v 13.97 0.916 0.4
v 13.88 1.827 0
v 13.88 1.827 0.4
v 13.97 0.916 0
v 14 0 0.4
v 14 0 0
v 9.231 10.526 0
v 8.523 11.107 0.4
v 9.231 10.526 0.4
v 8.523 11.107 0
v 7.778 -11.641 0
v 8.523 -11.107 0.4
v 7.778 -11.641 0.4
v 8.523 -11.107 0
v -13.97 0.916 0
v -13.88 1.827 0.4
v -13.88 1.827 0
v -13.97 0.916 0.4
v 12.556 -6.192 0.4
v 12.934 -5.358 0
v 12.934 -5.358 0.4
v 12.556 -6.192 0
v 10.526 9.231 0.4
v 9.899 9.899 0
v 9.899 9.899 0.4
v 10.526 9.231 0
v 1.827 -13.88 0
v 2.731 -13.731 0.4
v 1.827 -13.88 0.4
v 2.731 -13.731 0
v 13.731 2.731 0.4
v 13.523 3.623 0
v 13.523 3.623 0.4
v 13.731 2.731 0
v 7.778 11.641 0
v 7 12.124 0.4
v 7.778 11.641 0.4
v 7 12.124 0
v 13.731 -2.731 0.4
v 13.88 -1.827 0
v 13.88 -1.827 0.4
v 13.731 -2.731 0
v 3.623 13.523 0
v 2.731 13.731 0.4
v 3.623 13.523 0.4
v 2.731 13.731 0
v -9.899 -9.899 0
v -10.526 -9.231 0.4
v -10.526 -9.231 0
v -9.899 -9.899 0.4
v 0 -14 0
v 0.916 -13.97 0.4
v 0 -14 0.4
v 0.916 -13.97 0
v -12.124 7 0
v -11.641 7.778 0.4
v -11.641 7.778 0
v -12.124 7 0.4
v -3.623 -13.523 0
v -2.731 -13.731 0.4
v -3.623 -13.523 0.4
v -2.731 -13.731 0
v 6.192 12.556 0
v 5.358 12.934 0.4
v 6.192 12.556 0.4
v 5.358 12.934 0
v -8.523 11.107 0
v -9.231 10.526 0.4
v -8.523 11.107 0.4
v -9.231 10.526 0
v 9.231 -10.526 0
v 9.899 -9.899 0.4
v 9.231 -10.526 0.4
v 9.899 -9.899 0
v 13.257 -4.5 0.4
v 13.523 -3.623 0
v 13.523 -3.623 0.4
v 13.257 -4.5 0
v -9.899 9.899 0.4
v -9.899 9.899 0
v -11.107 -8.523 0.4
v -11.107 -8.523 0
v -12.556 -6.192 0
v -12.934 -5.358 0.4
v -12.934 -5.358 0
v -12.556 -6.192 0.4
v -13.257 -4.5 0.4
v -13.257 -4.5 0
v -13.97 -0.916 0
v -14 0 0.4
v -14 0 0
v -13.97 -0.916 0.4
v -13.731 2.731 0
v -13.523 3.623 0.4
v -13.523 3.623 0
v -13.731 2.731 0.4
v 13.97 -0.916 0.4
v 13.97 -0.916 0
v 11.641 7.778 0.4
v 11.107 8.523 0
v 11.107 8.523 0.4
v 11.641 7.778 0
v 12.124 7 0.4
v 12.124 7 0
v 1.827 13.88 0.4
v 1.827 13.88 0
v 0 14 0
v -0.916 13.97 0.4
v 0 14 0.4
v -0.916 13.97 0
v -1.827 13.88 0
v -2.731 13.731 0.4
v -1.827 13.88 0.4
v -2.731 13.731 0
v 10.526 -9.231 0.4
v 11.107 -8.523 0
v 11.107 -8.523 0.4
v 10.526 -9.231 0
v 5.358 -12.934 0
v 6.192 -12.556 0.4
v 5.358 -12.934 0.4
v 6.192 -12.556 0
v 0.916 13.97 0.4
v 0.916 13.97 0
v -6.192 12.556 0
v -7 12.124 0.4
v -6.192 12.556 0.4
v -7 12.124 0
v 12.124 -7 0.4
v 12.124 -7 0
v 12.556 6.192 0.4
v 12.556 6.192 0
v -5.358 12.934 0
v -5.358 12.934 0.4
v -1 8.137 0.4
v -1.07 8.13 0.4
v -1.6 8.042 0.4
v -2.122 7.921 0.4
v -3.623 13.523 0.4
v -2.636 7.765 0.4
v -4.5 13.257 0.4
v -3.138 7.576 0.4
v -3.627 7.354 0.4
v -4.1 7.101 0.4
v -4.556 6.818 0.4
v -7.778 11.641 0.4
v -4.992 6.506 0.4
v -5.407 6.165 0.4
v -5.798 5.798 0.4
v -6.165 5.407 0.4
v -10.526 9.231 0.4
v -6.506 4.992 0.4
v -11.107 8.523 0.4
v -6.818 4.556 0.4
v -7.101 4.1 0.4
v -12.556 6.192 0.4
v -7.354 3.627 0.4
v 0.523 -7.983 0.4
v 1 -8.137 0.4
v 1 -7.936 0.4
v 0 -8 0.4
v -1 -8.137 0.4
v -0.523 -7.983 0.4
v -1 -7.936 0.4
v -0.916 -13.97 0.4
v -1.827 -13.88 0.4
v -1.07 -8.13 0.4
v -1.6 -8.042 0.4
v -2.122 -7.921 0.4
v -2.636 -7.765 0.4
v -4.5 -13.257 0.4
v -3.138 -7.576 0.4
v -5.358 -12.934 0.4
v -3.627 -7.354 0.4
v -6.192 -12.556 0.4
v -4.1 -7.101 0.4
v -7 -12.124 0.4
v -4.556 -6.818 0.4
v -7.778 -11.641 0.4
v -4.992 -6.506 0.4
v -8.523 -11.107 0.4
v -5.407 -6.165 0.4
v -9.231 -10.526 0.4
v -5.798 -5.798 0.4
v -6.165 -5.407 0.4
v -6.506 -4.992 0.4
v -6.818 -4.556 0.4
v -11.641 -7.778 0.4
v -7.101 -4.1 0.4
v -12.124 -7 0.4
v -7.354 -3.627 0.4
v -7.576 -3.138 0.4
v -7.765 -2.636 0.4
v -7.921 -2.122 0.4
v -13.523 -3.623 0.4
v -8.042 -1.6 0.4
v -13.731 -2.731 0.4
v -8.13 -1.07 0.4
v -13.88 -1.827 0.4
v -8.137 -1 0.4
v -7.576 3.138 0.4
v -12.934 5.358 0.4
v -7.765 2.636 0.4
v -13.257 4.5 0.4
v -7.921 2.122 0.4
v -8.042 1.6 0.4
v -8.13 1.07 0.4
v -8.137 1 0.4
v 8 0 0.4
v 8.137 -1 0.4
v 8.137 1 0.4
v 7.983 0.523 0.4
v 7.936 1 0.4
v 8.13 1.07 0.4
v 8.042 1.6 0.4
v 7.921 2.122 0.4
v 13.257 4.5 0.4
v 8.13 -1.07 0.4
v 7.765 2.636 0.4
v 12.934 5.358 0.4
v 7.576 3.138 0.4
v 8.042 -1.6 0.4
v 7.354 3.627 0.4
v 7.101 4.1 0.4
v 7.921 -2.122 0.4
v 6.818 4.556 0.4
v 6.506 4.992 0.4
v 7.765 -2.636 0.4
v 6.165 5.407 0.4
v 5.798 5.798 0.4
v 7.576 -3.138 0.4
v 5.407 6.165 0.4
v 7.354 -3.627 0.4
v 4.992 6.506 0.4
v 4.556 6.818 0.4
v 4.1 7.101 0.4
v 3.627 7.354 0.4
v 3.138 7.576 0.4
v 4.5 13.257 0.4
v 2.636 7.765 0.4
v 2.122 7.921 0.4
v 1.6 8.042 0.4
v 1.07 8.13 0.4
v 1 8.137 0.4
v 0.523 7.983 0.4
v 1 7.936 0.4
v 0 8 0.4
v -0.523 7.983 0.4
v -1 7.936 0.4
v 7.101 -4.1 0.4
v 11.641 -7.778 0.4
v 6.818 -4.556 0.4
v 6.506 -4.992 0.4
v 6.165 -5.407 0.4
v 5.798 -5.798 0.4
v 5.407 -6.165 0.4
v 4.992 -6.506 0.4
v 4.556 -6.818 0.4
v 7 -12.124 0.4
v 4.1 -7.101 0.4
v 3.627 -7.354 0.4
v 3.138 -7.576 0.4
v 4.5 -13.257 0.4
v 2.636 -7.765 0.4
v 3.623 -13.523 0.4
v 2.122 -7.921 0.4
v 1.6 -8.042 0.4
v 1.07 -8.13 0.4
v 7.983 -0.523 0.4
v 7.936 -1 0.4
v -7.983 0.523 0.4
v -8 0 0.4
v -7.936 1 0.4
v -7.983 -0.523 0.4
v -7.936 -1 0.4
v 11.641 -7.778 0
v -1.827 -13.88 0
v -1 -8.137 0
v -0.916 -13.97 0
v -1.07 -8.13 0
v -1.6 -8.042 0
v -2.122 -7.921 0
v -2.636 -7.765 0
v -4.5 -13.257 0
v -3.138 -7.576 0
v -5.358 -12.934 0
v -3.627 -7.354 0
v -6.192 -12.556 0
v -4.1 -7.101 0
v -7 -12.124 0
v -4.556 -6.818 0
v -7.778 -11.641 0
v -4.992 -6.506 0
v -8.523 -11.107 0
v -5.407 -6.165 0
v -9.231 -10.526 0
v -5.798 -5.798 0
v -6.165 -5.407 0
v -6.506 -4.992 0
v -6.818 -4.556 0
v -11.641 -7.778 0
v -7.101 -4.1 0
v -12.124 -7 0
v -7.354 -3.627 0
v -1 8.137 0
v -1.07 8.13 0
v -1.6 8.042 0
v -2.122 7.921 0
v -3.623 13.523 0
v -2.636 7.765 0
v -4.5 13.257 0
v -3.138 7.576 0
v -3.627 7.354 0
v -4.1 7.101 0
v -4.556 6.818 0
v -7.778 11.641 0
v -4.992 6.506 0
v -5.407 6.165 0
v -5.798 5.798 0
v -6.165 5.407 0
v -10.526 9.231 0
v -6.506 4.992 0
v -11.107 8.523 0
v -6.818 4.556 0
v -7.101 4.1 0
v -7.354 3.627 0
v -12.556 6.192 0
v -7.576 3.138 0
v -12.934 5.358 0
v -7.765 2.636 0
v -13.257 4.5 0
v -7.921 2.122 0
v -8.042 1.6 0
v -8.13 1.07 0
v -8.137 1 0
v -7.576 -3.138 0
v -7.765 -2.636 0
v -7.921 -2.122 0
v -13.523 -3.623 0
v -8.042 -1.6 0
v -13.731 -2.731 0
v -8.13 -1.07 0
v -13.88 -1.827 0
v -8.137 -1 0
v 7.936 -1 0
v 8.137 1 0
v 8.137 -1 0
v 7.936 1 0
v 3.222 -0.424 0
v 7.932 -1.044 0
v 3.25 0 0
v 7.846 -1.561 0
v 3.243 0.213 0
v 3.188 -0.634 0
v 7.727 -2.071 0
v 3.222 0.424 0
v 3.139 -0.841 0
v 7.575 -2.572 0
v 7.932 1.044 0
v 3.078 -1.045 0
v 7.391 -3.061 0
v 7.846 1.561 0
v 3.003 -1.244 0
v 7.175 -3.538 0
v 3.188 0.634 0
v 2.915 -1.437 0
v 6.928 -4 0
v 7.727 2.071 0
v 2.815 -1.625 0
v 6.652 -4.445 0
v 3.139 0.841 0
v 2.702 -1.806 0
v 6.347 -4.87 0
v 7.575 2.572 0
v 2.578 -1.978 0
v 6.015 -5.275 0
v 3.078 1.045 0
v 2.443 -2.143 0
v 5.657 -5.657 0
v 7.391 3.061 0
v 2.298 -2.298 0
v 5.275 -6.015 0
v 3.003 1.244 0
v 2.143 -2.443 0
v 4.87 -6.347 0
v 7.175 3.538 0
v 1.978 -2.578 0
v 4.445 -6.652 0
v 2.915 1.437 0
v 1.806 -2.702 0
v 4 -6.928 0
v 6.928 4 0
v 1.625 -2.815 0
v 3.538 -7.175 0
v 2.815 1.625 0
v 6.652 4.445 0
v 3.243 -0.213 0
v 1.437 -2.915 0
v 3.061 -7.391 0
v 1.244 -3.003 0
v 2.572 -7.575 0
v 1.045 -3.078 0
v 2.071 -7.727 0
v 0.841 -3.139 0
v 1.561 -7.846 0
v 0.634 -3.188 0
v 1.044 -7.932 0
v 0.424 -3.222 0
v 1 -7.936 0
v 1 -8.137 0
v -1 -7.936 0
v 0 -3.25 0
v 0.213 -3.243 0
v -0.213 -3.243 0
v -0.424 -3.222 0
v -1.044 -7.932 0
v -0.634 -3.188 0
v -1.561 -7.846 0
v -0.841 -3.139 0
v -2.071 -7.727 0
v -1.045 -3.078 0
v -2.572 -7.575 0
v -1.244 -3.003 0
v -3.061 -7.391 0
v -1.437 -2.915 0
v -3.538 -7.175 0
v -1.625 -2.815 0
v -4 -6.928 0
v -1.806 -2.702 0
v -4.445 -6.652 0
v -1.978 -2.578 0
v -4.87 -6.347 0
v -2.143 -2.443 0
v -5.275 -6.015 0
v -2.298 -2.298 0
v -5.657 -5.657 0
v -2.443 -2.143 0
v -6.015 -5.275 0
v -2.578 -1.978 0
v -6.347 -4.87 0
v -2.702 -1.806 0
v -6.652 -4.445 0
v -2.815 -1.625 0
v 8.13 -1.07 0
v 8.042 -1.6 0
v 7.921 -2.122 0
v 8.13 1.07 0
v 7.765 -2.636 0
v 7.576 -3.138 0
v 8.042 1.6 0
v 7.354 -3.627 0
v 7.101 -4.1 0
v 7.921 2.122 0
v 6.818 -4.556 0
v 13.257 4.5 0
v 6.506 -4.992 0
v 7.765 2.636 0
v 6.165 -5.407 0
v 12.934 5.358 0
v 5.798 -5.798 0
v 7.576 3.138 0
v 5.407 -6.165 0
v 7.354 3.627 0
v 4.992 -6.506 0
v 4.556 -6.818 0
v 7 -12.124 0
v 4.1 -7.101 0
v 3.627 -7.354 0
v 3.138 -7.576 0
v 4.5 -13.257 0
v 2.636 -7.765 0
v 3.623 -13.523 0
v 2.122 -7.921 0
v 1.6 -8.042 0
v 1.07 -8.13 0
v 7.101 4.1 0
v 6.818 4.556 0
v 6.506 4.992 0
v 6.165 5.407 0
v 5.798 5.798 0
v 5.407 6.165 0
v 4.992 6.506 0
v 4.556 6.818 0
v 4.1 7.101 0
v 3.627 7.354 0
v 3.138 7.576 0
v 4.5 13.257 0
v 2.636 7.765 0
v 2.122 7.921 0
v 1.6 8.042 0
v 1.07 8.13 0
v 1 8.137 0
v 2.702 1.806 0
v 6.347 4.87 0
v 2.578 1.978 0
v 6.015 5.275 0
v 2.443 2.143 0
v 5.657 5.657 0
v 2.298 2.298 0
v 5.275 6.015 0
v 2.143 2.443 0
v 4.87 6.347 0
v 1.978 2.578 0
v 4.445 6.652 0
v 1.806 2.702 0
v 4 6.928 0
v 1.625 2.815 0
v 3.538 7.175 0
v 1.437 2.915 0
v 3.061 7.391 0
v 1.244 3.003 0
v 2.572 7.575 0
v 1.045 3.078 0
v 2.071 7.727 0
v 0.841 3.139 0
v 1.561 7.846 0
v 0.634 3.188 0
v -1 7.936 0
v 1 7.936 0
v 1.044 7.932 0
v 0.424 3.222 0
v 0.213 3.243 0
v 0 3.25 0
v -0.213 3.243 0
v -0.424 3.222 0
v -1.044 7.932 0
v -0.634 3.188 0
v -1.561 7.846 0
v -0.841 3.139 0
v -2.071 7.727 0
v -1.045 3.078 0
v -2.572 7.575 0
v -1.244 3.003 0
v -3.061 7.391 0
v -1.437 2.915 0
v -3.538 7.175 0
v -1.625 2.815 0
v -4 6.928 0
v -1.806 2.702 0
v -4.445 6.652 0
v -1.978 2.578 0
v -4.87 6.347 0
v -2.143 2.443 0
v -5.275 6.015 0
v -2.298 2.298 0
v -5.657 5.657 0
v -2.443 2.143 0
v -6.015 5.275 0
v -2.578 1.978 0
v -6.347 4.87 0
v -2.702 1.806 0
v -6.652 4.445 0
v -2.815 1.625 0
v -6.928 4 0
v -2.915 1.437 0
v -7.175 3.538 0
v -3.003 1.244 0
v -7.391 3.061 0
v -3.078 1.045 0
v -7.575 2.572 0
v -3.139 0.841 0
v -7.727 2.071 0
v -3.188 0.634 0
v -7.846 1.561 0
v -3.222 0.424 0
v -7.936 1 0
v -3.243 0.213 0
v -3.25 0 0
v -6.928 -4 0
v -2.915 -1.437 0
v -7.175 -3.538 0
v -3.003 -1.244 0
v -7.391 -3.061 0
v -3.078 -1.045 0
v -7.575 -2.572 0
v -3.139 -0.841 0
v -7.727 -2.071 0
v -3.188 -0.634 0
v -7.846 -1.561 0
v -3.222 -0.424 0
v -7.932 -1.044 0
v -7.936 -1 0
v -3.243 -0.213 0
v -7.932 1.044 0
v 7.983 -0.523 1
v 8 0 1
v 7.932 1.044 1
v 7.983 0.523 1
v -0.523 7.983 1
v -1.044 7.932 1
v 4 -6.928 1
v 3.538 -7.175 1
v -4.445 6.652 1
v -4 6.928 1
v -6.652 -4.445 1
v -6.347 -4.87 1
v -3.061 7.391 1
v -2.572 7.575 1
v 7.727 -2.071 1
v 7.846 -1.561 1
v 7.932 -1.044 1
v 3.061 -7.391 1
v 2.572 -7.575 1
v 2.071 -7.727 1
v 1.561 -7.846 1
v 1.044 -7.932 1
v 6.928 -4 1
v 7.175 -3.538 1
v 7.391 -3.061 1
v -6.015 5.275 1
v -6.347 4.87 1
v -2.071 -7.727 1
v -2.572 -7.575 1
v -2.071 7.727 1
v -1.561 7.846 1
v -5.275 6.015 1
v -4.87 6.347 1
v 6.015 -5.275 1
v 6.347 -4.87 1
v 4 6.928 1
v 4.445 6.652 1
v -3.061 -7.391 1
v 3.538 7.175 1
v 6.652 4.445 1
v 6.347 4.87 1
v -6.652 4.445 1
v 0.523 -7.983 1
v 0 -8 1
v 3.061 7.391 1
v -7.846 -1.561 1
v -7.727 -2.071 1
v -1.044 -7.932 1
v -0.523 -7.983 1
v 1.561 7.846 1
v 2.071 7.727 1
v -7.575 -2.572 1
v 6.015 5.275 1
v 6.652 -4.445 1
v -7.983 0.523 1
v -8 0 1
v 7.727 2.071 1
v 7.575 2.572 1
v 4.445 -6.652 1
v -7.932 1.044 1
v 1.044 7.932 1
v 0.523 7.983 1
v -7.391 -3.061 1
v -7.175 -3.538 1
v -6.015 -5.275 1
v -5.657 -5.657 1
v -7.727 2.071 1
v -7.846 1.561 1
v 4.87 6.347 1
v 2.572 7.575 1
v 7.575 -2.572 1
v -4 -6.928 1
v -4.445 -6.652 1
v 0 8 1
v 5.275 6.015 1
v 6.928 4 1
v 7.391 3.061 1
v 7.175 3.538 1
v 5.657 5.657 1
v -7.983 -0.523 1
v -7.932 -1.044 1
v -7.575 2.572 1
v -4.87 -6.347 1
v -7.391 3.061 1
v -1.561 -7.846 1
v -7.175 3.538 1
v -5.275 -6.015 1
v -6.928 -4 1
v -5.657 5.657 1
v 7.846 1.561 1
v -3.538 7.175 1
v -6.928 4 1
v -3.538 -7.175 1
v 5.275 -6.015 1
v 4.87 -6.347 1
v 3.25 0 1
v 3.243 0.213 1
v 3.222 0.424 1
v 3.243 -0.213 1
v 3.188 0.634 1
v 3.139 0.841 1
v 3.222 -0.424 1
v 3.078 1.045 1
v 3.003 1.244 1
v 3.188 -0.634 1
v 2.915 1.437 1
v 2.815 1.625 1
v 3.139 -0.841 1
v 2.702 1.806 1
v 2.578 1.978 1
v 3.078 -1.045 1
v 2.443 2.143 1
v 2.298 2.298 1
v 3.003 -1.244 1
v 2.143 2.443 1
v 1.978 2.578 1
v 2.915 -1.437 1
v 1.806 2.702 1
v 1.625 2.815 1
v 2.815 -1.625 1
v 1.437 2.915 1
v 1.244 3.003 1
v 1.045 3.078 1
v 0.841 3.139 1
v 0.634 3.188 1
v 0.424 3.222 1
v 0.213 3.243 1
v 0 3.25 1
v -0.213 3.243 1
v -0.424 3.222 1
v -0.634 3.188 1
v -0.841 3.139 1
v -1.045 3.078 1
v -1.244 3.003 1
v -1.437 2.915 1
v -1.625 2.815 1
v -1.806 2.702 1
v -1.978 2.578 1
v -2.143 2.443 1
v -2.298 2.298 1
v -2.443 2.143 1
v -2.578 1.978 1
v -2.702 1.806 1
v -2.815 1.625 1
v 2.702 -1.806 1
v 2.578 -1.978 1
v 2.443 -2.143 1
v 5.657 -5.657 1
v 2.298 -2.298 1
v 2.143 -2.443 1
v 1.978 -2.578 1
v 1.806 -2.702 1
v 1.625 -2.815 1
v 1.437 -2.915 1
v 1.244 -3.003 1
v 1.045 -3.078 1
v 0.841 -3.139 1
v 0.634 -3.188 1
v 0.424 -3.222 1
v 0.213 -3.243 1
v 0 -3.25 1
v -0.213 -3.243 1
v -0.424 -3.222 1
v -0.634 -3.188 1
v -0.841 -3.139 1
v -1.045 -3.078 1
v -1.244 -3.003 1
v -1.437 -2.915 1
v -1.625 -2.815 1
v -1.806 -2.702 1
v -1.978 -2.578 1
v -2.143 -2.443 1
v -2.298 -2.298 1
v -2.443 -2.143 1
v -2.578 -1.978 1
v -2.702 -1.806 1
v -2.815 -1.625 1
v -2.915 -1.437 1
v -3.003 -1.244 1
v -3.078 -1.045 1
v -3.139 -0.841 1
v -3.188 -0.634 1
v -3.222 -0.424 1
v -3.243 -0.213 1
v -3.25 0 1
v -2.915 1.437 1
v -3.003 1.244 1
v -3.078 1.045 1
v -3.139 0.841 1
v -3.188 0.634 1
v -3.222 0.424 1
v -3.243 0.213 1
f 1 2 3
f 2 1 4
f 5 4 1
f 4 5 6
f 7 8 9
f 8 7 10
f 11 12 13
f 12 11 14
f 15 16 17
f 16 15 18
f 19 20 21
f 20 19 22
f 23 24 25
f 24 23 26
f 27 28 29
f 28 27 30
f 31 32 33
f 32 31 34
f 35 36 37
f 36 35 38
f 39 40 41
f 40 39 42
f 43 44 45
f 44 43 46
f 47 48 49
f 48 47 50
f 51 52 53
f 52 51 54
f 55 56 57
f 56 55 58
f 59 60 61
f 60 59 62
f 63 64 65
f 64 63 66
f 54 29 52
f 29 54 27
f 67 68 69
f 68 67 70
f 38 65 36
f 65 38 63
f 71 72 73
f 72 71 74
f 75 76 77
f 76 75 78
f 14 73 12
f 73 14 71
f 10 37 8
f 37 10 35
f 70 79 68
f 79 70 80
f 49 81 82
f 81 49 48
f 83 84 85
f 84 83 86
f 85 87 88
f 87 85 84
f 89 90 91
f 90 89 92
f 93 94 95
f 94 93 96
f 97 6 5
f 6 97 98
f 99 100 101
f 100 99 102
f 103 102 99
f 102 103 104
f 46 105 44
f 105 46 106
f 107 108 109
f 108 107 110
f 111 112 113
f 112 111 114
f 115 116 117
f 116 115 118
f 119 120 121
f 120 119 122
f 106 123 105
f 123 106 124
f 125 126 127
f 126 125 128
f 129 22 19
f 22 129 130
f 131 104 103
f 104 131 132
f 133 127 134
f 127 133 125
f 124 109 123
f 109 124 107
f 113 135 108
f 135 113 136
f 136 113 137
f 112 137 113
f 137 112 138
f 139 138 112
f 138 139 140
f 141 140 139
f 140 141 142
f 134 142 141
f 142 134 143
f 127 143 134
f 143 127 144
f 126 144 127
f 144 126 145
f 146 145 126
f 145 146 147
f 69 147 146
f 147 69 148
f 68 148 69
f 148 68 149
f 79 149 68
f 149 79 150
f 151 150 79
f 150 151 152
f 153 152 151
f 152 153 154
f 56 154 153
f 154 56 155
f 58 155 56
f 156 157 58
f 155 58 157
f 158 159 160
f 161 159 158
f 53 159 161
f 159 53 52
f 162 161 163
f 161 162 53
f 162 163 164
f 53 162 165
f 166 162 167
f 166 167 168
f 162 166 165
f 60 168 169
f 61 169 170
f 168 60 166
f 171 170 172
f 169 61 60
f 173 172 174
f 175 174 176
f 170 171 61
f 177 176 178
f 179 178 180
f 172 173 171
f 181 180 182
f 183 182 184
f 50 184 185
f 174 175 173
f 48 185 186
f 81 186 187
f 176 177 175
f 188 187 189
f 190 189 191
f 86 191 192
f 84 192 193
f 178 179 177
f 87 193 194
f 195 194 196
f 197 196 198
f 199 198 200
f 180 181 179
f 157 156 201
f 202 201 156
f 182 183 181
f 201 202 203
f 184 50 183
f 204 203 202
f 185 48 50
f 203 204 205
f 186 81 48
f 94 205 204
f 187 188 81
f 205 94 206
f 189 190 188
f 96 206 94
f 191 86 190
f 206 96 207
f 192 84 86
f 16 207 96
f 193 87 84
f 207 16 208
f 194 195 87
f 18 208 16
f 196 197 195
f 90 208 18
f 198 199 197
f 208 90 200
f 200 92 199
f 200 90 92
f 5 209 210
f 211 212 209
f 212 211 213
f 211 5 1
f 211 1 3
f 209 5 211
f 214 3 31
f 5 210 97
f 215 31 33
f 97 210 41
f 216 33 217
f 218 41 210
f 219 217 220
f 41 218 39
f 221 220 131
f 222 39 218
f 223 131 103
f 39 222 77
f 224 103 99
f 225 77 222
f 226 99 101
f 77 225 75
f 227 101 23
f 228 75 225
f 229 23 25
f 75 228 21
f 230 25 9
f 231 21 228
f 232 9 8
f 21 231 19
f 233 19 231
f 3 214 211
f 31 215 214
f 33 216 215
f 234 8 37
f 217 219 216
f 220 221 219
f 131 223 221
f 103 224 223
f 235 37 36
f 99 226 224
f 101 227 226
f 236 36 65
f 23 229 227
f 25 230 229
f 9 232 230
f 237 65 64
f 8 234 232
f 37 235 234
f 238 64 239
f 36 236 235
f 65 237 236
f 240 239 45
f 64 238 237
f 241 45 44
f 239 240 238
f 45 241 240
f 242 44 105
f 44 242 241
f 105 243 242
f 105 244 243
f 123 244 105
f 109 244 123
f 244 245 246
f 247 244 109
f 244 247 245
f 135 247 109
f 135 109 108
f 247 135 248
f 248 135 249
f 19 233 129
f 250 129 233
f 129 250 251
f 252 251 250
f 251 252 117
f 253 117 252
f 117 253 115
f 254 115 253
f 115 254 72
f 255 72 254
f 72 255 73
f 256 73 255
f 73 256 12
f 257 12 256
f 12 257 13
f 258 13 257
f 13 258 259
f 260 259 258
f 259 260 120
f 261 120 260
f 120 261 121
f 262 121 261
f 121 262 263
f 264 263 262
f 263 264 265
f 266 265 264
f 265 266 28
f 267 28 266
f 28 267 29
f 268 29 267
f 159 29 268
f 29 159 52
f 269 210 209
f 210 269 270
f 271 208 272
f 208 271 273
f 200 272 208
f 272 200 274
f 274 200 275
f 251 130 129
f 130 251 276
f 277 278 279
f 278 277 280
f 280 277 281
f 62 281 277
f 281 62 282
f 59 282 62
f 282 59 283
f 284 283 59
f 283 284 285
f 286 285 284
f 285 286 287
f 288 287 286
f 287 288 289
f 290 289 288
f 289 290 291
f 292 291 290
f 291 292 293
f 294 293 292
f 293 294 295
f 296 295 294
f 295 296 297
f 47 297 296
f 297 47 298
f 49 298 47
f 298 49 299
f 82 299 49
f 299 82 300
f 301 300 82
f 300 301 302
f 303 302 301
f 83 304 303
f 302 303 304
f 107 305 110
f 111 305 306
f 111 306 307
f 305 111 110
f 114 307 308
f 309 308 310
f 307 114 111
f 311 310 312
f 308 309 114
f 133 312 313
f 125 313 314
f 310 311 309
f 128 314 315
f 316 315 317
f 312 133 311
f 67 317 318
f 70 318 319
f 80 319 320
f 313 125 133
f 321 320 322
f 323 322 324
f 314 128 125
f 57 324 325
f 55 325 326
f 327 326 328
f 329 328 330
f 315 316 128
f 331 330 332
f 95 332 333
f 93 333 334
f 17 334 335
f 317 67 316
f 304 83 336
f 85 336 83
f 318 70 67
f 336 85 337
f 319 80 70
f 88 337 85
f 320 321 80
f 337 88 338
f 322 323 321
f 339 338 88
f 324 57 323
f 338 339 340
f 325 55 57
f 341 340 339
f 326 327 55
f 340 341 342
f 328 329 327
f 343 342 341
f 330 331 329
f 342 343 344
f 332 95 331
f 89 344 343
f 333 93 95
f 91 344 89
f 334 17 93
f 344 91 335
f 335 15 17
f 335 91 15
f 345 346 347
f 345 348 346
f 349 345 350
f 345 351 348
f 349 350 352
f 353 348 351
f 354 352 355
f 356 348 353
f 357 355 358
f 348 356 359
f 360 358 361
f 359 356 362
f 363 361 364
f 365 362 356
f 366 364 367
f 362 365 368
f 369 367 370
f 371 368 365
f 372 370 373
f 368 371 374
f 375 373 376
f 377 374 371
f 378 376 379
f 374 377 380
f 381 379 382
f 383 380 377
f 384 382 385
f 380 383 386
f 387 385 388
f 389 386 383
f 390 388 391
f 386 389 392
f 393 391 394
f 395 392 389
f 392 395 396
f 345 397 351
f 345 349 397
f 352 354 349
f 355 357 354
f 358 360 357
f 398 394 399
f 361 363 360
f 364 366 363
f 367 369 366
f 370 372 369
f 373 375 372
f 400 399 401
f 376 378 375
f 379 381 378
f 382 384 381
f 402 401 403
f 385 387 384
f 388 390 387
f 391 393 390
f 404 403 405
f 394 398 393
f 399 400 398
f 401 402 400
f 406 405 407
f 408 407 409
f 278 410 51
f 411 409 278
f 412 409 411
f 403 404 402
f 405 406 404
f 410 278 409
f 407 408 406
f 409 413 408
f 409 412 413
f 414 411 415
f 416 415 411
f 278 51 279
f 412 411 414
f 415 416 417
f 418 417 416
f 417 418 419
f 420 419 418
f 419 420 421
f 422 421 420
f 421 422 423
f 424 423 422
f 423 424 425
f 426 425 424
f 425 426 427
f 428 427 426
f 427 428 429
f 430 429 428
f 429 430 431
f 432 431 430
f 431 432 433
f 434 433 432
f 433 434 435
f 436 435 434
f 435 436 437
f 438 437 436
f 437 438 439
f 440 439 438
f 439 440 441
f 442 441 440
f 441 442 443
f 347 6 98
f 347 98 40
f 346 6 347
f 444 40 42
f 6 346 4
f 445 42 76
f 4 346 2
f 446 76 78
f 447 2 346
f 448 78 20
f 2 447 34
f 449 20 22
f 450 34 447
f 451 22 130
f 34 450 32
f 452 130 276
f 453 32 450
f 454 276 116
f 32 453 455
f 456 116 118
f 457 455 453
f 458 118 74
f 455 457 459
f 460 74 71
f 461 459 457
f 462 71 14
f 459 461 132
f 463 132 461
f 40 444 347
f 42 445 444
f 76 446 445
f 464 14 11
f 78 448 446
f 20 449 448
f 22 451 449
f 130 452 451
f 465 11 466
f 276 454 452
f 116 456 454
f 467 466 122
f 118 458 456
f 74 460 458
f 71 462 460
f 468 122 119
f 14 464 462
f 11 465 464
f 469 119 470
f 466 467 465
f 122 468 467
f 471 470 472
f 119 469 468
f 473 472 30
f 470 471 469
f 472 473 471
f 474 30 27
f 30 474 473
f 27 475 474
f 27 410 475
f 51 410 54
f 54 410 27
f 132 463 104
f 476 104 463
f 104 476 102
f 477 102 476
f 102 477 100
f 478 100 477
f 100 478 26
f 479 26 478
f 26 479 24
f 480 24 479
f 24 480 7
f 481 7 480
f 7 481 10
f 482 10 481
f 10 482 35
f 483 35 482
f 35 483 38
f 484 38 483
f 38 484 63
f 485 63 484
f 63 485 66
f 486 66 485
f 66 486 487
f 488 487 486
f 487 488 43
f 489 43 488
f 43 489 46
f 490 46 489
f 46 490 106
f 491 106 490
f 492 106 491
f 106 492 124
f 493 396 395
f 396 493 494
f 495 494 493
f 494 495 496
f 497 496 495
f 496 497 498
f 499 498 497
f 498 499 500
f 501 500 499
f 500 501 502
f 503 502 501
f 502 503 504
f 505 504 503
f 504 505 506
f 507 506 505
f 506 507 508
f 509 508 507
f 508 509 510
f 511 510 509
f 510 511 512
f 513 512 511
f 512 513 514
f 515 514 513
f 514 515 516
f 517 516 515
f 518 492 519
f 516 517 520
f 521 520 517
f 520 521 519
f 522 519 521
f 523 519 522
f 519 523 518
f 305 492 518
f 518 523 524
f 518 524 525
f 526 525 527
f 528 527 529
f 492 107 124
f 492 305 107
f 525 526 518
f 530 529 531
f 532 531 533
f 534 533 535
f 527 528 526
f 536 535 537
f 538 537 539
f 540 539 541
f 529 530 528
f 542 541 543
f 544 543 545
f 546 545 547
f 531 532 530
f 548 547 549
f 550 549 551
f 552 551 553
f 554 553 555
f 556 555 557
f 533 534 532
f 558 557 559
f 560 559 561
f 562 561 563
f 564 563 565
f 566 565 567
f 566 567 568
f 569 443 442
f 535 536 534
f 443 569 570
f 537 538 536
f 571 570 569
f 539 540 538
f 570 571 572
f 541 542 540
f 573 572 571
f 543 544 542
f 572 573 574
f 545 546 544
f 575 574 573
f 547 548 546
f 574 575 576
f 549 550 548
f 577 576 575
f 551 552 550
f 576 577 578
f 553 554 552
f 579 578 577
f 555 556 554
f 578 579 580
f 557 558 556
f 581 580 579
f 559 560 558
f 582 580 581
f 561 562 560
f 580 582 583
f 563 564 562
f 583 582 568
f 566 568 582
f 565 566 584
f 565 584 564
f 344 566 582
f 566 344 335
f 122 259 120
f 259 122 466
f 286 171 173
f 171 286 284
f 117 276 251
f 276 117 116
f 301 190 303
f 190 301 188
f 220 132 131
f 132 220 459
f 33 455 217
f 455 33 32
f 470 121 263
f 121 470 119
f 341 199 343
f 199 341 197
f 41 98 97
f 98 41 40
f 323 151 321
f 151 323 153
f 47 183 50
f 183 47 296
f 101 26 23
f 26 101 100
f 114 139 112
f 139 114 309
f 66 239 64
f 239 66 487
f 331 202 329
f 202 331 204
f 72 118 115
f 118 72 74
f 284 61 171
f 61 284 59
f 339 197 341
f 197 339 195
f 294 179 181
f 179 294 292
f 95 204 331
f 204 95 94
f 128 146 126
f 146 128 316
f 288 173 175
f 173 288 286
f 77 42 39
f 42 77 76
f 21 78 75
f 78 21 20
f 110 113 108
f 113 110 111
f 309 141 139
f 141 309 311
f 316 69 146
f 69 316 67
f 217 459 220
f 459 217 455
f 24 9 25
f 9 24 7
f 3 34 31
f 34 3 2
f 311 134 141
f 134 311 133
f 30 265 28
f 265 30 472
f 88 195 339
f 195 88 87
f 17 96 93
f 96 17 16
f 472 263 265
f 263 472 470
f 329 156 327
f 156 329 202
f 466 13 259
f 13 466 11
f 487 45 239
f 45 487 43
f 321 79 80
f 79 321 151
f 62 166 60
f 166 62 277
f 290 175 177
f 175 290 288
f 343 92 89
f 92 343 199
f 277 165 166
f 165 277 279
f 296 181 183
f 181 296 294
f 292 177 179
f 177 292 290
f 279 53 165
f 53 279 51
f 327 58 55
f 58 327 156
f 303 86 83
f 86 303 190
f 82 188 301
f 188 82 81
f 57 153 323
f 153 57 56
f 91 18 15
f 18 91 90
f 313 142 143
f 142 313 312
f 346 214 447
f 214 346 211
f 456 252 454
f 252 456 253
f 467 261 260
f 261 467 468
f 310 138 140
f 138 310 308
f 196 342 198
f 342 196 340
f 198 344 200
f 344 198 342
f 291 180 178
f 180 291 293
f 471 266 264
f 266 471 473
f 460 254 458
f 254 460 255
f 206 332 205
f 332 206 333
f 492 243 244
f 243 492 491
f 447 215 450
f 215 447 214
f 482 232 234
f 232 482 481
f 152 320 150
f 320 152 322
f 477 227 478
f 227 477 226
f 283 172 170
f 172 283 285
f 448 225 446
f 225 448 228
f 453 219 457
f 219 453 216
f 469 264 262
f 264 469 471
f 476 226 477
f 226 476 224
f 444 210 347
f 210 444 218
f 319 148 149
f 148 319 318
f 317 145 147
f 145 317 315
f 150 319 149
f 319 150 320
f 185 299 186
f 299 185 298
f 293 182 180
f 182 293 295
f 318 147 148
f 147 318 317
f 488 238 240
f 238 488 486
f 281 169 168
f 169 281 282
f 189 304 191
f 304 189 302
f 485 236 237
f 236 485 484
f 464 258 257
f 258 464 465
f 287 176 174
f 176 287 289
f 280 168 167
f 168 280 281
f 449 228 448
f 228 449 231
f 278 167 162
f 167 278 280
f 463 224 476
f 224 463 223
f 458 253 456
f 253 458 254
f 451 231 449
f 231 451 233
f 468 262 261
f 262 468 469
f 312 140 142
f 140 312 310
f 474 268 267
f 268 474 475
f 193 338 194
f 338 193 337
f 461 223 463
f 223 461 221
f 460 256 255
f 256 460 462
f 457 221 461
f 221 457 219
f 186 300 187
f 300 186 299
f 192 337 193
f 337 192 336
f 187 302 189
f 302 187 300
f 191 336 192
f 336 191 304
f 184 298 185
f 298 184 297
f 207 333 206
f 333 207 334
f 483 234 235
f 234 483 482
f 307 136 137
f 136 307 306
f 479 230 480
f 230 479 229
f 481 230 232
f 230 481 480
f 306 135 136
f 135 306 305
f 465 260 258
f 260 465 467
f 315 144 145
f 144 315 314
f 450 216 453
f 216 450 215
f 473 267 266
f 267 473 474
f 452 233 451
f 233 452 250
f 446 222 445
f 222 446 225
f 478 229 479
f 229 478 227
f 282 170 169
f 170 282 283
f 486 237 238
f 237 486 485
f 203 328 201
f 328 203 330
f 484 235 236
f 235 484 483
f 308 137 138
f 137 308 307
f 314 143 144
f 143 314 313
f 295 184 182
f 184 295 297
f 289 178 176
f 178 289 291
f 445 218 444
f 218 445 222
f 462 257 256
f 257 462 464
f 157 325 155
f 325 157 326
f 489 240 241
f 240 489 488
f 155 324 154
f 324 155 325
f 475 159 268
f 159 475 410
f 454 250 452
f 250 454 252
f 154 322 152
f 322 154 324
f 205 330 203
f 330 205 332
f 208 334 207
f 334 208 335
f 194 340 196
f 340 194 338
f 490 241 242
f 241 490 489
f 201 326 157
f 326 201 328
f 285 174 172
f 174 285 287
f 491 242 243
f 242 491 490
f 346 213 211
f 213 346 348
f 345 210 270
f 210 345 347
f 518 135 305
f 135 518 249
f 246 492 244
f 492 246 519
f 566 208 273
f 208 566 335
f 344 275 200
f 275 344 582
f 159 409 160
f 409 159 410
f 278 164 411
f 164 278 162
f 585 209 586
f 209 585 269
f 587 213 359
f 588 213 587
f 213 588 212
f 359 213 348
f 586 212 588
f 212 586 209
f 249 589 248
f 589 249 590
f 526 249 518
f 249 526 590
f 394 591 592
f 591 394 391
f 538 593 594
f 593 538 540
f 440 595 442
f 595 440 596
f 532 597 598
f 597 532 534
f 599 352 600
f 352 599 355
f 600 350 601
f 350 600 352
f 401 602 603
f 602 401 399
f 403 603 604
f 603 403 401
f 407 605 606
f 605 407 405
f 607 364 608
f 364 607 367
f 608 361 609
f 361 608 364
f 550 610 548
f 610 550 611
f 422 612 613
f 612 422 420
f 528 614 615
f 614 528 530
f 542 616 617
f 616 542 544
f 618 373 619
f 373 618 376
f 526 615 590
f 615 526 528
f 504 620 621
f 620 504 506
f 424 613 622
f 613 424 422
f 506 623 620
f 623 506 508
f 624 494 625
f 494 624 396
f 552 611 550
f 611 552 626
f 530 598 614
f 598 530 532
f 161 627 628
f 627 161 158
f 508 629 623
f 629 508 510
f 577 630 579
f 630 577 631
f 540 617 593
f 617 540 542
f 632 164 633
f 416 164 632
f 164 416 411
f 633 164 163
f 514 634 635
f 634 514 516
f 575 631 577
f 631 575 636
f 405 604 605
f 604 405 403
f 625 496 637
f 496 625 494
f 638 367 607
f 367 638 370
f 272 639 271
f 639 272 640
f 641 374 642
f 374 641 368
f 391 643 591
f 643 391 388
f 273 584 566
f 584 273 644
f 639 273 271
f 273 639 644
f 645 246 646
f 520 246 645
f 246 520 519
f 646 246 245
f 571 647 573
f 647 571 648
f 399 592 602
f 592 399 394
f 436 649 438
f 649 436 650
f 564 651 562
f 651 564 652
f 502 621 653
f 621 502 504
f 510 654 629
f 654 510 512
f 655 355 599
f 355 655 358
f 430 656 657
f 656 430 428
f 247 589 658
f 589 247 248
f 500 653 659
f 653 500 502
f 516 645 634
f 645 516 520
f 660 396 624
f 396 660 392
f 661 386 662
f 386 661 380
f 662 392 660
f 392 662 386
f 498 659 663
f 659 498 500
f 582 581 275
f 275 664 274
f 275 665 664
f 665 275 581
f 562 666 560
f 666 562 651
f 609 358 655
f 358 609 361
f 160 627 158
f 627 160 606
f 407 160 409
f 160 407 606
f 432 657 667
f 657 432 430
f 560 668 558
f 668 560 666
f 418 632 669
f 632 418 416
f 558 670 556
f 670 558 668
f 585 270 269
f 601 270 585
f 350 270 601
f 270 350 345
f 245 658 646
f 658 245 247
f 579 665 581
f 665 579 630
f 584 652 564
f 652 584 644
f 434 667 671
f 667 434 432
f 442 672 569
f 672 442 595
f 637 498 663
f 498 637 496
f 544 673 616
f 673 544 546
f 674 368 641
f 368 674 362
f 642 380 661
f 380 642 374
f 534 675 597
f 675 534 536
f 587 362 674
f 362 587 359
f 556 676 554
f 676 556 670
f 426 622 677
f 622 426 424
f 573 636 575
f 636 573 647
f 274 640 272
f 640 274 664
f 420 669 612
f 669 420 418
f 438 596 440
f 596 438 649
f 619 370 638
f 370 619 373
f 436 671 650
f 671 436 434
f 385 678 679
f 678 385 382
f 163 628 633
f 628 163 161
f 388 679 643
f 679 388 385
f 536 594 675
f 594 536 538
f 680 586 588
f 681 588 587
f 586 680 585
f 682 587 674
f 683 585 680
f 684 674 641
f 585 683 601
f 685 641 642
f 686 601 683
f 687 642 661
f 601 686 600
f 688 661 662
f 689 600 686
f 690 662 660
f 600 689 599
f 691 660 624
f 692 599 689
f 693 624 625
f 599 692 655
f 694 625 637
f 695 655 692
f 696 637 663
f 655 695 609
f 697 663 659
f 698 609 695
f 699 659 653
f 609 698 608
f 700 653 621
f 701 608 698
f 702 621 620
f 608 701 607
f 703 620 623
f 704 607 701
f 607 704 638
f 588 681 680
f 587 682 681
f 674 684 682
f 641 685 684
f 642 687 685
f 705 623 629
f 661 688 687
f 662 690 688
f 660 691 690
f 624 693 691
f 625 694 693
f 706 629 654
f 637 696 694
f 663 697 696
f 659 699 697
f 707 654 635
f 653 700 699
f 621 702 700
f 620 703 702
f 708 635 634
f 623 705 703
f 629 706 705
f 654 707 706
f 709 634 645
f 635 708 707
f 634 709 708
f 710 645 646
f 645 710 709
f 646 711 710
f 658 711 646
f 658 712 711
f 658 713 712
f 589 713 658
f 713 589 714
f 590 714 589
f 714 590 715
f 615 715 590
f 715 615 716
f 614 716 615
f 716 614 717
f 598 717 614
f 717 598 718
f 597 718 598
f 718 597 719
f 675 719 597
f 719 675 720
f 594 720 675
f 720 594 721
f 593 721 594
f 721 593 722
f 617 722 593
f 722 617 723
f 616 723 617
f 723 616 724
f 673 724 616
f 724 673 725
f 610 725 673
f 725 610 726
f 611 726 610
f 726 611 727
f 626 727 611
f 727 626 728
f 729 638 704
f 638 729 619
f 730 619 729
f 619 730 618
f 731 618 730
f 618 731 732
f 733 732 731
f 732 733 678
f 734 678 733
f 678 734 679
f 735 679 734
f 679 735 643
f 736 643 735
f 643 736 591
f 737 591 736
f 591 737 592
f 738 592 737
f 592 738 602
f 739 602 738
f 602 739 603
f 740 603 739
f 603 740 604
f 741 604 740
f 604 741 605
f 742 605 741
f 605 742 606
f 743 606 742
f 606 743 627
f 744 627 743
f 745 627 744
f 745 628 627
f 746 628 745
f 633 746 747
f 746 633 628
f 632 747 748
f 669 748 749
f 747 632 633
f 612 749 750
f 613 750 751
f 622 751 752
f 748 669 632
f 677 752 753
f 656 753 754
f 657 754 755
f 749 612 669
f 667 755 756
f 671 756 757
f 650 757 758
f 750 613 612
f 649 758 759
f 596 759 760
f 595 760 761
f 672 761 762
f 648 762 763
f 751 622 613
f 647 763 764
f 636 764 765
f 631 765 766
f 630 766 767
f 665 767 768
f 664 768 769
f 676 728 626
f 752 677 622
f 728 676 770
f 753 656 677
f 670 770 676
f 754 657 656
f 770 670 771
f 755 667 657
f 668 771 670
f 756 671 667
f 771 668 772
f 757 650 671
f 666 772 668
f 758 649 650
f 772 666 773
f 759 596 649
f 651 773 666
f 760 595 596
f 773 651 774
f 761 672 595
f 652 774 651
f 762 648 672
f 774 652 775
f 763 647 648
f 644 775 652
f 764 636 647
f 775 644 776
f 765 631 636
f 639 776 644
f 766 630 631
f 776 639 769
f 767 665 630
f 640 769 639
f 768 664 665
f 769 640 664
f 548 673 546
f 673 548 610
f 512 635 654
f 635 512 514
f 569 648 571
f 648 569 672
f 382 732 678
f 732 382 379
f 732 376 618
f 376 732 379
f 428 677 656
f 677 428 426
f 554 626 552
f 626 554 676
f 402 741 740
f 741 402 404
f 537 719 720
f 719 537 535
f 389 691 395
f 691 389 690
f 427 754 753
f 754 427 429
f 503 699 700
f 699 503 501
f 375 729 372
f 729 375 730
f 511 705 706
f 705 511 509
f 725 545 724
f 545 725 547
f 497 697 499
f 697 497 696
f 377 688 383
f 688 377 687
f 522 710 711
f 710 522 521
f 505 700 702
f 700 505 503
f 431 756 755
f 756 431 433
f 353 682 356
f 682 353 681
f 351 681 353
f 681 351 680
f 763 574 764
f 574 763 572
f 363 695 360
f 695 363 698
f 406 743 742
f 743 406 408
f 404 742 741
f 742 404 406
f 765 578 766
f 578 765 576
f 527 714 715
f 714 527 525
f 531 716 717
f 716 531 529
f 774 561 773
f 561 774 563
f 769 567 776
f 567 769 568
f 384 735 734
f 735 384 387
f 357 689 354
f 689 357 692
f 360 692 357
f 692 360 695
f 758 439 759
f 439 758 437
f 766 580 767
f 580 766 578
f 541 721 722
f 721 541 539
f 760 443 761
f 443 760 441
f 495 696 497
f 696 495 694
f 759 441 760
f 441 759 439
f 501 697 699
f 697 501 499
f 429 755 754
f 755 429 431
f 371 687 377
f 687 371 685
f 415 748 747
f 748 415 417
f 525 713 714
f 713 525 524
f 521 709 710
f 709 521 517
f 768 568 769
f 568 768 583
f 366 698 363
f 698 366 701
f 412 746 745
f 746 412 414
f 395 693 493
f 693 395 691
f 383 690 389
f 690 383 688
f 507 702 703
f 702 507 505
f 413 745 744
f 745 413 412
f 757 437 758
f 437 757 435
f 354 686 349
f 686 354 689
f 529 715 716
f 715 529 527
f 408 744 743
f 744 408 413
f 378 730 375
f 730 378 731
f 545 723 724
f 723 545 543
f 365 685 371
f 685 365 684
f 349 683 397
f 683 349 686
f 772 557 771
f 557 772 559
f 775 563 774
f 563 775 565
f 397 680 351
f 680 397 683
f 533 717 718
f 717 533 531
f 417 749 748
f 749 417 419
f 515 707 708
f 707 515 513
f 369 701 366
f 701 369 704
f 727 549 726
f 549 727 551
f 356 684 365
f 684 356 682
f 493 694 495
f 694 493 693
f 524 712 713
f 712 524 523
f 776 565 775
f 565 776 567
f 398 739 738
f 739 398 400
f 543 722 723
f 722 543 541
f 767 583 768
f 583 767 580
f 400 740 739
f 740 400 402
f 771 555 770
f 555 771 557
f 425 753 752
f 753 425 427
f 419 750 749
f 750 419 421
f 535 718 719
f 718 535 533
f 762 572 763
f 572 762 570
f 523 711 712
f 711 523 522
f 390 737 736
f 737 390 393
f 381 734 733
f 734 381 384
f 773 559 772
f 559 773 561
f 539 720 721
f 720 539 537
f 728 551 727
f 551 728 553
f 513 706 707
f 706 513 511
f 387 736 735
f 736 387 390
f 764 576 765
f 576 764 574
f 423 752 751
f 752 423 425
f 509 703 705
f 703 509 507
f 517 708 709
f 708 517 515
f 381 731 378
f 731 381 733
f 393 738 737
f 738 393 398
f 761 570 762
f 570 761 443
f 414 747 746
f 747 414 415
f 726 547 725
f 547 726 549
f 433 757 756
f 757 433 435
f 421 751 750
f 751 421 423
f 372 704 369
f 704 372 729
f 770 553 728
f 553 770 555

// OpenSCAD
// One shim for a leg bolt (M6, 6.5 mm hole), 1 mm thick, 16 mm across,
// with a thin built-in brim so it grips the bed. Snap or trim the brim off.

hole        = 6.5;
od          = 16;
t           = 1.0;
brim        = 6;    // brim width around the shim
brim_height = 0.4;  // two layers
brim_gap    = 0.2;  // tiny gap so the brim snaps off cleanly
$fn = 96;

difference() {
  union() {
    cylinder(h = t, d = od);
    // Brim ring, joined to the shim only by its first layers.
    difference() {
      cylinder(h = brim_height, d = od + 2 * brim);
      translate([0, 0, -1]) cylinder(h = brim_height + 2, d = od + 2 * brim_gap);
    }
    // Four small tabs bridging shim and brim so the brim holds it down.
    for (a = [0, 90, 180, 270]) rotate([0, 0, a])
      translate([od / 2 - 1, -1, 0]) cube([brim_gap + 2, 2, brim_height]);
  }
  translate([0, 0, -1]) cylinder(h = t + 2, d = hole);
}
